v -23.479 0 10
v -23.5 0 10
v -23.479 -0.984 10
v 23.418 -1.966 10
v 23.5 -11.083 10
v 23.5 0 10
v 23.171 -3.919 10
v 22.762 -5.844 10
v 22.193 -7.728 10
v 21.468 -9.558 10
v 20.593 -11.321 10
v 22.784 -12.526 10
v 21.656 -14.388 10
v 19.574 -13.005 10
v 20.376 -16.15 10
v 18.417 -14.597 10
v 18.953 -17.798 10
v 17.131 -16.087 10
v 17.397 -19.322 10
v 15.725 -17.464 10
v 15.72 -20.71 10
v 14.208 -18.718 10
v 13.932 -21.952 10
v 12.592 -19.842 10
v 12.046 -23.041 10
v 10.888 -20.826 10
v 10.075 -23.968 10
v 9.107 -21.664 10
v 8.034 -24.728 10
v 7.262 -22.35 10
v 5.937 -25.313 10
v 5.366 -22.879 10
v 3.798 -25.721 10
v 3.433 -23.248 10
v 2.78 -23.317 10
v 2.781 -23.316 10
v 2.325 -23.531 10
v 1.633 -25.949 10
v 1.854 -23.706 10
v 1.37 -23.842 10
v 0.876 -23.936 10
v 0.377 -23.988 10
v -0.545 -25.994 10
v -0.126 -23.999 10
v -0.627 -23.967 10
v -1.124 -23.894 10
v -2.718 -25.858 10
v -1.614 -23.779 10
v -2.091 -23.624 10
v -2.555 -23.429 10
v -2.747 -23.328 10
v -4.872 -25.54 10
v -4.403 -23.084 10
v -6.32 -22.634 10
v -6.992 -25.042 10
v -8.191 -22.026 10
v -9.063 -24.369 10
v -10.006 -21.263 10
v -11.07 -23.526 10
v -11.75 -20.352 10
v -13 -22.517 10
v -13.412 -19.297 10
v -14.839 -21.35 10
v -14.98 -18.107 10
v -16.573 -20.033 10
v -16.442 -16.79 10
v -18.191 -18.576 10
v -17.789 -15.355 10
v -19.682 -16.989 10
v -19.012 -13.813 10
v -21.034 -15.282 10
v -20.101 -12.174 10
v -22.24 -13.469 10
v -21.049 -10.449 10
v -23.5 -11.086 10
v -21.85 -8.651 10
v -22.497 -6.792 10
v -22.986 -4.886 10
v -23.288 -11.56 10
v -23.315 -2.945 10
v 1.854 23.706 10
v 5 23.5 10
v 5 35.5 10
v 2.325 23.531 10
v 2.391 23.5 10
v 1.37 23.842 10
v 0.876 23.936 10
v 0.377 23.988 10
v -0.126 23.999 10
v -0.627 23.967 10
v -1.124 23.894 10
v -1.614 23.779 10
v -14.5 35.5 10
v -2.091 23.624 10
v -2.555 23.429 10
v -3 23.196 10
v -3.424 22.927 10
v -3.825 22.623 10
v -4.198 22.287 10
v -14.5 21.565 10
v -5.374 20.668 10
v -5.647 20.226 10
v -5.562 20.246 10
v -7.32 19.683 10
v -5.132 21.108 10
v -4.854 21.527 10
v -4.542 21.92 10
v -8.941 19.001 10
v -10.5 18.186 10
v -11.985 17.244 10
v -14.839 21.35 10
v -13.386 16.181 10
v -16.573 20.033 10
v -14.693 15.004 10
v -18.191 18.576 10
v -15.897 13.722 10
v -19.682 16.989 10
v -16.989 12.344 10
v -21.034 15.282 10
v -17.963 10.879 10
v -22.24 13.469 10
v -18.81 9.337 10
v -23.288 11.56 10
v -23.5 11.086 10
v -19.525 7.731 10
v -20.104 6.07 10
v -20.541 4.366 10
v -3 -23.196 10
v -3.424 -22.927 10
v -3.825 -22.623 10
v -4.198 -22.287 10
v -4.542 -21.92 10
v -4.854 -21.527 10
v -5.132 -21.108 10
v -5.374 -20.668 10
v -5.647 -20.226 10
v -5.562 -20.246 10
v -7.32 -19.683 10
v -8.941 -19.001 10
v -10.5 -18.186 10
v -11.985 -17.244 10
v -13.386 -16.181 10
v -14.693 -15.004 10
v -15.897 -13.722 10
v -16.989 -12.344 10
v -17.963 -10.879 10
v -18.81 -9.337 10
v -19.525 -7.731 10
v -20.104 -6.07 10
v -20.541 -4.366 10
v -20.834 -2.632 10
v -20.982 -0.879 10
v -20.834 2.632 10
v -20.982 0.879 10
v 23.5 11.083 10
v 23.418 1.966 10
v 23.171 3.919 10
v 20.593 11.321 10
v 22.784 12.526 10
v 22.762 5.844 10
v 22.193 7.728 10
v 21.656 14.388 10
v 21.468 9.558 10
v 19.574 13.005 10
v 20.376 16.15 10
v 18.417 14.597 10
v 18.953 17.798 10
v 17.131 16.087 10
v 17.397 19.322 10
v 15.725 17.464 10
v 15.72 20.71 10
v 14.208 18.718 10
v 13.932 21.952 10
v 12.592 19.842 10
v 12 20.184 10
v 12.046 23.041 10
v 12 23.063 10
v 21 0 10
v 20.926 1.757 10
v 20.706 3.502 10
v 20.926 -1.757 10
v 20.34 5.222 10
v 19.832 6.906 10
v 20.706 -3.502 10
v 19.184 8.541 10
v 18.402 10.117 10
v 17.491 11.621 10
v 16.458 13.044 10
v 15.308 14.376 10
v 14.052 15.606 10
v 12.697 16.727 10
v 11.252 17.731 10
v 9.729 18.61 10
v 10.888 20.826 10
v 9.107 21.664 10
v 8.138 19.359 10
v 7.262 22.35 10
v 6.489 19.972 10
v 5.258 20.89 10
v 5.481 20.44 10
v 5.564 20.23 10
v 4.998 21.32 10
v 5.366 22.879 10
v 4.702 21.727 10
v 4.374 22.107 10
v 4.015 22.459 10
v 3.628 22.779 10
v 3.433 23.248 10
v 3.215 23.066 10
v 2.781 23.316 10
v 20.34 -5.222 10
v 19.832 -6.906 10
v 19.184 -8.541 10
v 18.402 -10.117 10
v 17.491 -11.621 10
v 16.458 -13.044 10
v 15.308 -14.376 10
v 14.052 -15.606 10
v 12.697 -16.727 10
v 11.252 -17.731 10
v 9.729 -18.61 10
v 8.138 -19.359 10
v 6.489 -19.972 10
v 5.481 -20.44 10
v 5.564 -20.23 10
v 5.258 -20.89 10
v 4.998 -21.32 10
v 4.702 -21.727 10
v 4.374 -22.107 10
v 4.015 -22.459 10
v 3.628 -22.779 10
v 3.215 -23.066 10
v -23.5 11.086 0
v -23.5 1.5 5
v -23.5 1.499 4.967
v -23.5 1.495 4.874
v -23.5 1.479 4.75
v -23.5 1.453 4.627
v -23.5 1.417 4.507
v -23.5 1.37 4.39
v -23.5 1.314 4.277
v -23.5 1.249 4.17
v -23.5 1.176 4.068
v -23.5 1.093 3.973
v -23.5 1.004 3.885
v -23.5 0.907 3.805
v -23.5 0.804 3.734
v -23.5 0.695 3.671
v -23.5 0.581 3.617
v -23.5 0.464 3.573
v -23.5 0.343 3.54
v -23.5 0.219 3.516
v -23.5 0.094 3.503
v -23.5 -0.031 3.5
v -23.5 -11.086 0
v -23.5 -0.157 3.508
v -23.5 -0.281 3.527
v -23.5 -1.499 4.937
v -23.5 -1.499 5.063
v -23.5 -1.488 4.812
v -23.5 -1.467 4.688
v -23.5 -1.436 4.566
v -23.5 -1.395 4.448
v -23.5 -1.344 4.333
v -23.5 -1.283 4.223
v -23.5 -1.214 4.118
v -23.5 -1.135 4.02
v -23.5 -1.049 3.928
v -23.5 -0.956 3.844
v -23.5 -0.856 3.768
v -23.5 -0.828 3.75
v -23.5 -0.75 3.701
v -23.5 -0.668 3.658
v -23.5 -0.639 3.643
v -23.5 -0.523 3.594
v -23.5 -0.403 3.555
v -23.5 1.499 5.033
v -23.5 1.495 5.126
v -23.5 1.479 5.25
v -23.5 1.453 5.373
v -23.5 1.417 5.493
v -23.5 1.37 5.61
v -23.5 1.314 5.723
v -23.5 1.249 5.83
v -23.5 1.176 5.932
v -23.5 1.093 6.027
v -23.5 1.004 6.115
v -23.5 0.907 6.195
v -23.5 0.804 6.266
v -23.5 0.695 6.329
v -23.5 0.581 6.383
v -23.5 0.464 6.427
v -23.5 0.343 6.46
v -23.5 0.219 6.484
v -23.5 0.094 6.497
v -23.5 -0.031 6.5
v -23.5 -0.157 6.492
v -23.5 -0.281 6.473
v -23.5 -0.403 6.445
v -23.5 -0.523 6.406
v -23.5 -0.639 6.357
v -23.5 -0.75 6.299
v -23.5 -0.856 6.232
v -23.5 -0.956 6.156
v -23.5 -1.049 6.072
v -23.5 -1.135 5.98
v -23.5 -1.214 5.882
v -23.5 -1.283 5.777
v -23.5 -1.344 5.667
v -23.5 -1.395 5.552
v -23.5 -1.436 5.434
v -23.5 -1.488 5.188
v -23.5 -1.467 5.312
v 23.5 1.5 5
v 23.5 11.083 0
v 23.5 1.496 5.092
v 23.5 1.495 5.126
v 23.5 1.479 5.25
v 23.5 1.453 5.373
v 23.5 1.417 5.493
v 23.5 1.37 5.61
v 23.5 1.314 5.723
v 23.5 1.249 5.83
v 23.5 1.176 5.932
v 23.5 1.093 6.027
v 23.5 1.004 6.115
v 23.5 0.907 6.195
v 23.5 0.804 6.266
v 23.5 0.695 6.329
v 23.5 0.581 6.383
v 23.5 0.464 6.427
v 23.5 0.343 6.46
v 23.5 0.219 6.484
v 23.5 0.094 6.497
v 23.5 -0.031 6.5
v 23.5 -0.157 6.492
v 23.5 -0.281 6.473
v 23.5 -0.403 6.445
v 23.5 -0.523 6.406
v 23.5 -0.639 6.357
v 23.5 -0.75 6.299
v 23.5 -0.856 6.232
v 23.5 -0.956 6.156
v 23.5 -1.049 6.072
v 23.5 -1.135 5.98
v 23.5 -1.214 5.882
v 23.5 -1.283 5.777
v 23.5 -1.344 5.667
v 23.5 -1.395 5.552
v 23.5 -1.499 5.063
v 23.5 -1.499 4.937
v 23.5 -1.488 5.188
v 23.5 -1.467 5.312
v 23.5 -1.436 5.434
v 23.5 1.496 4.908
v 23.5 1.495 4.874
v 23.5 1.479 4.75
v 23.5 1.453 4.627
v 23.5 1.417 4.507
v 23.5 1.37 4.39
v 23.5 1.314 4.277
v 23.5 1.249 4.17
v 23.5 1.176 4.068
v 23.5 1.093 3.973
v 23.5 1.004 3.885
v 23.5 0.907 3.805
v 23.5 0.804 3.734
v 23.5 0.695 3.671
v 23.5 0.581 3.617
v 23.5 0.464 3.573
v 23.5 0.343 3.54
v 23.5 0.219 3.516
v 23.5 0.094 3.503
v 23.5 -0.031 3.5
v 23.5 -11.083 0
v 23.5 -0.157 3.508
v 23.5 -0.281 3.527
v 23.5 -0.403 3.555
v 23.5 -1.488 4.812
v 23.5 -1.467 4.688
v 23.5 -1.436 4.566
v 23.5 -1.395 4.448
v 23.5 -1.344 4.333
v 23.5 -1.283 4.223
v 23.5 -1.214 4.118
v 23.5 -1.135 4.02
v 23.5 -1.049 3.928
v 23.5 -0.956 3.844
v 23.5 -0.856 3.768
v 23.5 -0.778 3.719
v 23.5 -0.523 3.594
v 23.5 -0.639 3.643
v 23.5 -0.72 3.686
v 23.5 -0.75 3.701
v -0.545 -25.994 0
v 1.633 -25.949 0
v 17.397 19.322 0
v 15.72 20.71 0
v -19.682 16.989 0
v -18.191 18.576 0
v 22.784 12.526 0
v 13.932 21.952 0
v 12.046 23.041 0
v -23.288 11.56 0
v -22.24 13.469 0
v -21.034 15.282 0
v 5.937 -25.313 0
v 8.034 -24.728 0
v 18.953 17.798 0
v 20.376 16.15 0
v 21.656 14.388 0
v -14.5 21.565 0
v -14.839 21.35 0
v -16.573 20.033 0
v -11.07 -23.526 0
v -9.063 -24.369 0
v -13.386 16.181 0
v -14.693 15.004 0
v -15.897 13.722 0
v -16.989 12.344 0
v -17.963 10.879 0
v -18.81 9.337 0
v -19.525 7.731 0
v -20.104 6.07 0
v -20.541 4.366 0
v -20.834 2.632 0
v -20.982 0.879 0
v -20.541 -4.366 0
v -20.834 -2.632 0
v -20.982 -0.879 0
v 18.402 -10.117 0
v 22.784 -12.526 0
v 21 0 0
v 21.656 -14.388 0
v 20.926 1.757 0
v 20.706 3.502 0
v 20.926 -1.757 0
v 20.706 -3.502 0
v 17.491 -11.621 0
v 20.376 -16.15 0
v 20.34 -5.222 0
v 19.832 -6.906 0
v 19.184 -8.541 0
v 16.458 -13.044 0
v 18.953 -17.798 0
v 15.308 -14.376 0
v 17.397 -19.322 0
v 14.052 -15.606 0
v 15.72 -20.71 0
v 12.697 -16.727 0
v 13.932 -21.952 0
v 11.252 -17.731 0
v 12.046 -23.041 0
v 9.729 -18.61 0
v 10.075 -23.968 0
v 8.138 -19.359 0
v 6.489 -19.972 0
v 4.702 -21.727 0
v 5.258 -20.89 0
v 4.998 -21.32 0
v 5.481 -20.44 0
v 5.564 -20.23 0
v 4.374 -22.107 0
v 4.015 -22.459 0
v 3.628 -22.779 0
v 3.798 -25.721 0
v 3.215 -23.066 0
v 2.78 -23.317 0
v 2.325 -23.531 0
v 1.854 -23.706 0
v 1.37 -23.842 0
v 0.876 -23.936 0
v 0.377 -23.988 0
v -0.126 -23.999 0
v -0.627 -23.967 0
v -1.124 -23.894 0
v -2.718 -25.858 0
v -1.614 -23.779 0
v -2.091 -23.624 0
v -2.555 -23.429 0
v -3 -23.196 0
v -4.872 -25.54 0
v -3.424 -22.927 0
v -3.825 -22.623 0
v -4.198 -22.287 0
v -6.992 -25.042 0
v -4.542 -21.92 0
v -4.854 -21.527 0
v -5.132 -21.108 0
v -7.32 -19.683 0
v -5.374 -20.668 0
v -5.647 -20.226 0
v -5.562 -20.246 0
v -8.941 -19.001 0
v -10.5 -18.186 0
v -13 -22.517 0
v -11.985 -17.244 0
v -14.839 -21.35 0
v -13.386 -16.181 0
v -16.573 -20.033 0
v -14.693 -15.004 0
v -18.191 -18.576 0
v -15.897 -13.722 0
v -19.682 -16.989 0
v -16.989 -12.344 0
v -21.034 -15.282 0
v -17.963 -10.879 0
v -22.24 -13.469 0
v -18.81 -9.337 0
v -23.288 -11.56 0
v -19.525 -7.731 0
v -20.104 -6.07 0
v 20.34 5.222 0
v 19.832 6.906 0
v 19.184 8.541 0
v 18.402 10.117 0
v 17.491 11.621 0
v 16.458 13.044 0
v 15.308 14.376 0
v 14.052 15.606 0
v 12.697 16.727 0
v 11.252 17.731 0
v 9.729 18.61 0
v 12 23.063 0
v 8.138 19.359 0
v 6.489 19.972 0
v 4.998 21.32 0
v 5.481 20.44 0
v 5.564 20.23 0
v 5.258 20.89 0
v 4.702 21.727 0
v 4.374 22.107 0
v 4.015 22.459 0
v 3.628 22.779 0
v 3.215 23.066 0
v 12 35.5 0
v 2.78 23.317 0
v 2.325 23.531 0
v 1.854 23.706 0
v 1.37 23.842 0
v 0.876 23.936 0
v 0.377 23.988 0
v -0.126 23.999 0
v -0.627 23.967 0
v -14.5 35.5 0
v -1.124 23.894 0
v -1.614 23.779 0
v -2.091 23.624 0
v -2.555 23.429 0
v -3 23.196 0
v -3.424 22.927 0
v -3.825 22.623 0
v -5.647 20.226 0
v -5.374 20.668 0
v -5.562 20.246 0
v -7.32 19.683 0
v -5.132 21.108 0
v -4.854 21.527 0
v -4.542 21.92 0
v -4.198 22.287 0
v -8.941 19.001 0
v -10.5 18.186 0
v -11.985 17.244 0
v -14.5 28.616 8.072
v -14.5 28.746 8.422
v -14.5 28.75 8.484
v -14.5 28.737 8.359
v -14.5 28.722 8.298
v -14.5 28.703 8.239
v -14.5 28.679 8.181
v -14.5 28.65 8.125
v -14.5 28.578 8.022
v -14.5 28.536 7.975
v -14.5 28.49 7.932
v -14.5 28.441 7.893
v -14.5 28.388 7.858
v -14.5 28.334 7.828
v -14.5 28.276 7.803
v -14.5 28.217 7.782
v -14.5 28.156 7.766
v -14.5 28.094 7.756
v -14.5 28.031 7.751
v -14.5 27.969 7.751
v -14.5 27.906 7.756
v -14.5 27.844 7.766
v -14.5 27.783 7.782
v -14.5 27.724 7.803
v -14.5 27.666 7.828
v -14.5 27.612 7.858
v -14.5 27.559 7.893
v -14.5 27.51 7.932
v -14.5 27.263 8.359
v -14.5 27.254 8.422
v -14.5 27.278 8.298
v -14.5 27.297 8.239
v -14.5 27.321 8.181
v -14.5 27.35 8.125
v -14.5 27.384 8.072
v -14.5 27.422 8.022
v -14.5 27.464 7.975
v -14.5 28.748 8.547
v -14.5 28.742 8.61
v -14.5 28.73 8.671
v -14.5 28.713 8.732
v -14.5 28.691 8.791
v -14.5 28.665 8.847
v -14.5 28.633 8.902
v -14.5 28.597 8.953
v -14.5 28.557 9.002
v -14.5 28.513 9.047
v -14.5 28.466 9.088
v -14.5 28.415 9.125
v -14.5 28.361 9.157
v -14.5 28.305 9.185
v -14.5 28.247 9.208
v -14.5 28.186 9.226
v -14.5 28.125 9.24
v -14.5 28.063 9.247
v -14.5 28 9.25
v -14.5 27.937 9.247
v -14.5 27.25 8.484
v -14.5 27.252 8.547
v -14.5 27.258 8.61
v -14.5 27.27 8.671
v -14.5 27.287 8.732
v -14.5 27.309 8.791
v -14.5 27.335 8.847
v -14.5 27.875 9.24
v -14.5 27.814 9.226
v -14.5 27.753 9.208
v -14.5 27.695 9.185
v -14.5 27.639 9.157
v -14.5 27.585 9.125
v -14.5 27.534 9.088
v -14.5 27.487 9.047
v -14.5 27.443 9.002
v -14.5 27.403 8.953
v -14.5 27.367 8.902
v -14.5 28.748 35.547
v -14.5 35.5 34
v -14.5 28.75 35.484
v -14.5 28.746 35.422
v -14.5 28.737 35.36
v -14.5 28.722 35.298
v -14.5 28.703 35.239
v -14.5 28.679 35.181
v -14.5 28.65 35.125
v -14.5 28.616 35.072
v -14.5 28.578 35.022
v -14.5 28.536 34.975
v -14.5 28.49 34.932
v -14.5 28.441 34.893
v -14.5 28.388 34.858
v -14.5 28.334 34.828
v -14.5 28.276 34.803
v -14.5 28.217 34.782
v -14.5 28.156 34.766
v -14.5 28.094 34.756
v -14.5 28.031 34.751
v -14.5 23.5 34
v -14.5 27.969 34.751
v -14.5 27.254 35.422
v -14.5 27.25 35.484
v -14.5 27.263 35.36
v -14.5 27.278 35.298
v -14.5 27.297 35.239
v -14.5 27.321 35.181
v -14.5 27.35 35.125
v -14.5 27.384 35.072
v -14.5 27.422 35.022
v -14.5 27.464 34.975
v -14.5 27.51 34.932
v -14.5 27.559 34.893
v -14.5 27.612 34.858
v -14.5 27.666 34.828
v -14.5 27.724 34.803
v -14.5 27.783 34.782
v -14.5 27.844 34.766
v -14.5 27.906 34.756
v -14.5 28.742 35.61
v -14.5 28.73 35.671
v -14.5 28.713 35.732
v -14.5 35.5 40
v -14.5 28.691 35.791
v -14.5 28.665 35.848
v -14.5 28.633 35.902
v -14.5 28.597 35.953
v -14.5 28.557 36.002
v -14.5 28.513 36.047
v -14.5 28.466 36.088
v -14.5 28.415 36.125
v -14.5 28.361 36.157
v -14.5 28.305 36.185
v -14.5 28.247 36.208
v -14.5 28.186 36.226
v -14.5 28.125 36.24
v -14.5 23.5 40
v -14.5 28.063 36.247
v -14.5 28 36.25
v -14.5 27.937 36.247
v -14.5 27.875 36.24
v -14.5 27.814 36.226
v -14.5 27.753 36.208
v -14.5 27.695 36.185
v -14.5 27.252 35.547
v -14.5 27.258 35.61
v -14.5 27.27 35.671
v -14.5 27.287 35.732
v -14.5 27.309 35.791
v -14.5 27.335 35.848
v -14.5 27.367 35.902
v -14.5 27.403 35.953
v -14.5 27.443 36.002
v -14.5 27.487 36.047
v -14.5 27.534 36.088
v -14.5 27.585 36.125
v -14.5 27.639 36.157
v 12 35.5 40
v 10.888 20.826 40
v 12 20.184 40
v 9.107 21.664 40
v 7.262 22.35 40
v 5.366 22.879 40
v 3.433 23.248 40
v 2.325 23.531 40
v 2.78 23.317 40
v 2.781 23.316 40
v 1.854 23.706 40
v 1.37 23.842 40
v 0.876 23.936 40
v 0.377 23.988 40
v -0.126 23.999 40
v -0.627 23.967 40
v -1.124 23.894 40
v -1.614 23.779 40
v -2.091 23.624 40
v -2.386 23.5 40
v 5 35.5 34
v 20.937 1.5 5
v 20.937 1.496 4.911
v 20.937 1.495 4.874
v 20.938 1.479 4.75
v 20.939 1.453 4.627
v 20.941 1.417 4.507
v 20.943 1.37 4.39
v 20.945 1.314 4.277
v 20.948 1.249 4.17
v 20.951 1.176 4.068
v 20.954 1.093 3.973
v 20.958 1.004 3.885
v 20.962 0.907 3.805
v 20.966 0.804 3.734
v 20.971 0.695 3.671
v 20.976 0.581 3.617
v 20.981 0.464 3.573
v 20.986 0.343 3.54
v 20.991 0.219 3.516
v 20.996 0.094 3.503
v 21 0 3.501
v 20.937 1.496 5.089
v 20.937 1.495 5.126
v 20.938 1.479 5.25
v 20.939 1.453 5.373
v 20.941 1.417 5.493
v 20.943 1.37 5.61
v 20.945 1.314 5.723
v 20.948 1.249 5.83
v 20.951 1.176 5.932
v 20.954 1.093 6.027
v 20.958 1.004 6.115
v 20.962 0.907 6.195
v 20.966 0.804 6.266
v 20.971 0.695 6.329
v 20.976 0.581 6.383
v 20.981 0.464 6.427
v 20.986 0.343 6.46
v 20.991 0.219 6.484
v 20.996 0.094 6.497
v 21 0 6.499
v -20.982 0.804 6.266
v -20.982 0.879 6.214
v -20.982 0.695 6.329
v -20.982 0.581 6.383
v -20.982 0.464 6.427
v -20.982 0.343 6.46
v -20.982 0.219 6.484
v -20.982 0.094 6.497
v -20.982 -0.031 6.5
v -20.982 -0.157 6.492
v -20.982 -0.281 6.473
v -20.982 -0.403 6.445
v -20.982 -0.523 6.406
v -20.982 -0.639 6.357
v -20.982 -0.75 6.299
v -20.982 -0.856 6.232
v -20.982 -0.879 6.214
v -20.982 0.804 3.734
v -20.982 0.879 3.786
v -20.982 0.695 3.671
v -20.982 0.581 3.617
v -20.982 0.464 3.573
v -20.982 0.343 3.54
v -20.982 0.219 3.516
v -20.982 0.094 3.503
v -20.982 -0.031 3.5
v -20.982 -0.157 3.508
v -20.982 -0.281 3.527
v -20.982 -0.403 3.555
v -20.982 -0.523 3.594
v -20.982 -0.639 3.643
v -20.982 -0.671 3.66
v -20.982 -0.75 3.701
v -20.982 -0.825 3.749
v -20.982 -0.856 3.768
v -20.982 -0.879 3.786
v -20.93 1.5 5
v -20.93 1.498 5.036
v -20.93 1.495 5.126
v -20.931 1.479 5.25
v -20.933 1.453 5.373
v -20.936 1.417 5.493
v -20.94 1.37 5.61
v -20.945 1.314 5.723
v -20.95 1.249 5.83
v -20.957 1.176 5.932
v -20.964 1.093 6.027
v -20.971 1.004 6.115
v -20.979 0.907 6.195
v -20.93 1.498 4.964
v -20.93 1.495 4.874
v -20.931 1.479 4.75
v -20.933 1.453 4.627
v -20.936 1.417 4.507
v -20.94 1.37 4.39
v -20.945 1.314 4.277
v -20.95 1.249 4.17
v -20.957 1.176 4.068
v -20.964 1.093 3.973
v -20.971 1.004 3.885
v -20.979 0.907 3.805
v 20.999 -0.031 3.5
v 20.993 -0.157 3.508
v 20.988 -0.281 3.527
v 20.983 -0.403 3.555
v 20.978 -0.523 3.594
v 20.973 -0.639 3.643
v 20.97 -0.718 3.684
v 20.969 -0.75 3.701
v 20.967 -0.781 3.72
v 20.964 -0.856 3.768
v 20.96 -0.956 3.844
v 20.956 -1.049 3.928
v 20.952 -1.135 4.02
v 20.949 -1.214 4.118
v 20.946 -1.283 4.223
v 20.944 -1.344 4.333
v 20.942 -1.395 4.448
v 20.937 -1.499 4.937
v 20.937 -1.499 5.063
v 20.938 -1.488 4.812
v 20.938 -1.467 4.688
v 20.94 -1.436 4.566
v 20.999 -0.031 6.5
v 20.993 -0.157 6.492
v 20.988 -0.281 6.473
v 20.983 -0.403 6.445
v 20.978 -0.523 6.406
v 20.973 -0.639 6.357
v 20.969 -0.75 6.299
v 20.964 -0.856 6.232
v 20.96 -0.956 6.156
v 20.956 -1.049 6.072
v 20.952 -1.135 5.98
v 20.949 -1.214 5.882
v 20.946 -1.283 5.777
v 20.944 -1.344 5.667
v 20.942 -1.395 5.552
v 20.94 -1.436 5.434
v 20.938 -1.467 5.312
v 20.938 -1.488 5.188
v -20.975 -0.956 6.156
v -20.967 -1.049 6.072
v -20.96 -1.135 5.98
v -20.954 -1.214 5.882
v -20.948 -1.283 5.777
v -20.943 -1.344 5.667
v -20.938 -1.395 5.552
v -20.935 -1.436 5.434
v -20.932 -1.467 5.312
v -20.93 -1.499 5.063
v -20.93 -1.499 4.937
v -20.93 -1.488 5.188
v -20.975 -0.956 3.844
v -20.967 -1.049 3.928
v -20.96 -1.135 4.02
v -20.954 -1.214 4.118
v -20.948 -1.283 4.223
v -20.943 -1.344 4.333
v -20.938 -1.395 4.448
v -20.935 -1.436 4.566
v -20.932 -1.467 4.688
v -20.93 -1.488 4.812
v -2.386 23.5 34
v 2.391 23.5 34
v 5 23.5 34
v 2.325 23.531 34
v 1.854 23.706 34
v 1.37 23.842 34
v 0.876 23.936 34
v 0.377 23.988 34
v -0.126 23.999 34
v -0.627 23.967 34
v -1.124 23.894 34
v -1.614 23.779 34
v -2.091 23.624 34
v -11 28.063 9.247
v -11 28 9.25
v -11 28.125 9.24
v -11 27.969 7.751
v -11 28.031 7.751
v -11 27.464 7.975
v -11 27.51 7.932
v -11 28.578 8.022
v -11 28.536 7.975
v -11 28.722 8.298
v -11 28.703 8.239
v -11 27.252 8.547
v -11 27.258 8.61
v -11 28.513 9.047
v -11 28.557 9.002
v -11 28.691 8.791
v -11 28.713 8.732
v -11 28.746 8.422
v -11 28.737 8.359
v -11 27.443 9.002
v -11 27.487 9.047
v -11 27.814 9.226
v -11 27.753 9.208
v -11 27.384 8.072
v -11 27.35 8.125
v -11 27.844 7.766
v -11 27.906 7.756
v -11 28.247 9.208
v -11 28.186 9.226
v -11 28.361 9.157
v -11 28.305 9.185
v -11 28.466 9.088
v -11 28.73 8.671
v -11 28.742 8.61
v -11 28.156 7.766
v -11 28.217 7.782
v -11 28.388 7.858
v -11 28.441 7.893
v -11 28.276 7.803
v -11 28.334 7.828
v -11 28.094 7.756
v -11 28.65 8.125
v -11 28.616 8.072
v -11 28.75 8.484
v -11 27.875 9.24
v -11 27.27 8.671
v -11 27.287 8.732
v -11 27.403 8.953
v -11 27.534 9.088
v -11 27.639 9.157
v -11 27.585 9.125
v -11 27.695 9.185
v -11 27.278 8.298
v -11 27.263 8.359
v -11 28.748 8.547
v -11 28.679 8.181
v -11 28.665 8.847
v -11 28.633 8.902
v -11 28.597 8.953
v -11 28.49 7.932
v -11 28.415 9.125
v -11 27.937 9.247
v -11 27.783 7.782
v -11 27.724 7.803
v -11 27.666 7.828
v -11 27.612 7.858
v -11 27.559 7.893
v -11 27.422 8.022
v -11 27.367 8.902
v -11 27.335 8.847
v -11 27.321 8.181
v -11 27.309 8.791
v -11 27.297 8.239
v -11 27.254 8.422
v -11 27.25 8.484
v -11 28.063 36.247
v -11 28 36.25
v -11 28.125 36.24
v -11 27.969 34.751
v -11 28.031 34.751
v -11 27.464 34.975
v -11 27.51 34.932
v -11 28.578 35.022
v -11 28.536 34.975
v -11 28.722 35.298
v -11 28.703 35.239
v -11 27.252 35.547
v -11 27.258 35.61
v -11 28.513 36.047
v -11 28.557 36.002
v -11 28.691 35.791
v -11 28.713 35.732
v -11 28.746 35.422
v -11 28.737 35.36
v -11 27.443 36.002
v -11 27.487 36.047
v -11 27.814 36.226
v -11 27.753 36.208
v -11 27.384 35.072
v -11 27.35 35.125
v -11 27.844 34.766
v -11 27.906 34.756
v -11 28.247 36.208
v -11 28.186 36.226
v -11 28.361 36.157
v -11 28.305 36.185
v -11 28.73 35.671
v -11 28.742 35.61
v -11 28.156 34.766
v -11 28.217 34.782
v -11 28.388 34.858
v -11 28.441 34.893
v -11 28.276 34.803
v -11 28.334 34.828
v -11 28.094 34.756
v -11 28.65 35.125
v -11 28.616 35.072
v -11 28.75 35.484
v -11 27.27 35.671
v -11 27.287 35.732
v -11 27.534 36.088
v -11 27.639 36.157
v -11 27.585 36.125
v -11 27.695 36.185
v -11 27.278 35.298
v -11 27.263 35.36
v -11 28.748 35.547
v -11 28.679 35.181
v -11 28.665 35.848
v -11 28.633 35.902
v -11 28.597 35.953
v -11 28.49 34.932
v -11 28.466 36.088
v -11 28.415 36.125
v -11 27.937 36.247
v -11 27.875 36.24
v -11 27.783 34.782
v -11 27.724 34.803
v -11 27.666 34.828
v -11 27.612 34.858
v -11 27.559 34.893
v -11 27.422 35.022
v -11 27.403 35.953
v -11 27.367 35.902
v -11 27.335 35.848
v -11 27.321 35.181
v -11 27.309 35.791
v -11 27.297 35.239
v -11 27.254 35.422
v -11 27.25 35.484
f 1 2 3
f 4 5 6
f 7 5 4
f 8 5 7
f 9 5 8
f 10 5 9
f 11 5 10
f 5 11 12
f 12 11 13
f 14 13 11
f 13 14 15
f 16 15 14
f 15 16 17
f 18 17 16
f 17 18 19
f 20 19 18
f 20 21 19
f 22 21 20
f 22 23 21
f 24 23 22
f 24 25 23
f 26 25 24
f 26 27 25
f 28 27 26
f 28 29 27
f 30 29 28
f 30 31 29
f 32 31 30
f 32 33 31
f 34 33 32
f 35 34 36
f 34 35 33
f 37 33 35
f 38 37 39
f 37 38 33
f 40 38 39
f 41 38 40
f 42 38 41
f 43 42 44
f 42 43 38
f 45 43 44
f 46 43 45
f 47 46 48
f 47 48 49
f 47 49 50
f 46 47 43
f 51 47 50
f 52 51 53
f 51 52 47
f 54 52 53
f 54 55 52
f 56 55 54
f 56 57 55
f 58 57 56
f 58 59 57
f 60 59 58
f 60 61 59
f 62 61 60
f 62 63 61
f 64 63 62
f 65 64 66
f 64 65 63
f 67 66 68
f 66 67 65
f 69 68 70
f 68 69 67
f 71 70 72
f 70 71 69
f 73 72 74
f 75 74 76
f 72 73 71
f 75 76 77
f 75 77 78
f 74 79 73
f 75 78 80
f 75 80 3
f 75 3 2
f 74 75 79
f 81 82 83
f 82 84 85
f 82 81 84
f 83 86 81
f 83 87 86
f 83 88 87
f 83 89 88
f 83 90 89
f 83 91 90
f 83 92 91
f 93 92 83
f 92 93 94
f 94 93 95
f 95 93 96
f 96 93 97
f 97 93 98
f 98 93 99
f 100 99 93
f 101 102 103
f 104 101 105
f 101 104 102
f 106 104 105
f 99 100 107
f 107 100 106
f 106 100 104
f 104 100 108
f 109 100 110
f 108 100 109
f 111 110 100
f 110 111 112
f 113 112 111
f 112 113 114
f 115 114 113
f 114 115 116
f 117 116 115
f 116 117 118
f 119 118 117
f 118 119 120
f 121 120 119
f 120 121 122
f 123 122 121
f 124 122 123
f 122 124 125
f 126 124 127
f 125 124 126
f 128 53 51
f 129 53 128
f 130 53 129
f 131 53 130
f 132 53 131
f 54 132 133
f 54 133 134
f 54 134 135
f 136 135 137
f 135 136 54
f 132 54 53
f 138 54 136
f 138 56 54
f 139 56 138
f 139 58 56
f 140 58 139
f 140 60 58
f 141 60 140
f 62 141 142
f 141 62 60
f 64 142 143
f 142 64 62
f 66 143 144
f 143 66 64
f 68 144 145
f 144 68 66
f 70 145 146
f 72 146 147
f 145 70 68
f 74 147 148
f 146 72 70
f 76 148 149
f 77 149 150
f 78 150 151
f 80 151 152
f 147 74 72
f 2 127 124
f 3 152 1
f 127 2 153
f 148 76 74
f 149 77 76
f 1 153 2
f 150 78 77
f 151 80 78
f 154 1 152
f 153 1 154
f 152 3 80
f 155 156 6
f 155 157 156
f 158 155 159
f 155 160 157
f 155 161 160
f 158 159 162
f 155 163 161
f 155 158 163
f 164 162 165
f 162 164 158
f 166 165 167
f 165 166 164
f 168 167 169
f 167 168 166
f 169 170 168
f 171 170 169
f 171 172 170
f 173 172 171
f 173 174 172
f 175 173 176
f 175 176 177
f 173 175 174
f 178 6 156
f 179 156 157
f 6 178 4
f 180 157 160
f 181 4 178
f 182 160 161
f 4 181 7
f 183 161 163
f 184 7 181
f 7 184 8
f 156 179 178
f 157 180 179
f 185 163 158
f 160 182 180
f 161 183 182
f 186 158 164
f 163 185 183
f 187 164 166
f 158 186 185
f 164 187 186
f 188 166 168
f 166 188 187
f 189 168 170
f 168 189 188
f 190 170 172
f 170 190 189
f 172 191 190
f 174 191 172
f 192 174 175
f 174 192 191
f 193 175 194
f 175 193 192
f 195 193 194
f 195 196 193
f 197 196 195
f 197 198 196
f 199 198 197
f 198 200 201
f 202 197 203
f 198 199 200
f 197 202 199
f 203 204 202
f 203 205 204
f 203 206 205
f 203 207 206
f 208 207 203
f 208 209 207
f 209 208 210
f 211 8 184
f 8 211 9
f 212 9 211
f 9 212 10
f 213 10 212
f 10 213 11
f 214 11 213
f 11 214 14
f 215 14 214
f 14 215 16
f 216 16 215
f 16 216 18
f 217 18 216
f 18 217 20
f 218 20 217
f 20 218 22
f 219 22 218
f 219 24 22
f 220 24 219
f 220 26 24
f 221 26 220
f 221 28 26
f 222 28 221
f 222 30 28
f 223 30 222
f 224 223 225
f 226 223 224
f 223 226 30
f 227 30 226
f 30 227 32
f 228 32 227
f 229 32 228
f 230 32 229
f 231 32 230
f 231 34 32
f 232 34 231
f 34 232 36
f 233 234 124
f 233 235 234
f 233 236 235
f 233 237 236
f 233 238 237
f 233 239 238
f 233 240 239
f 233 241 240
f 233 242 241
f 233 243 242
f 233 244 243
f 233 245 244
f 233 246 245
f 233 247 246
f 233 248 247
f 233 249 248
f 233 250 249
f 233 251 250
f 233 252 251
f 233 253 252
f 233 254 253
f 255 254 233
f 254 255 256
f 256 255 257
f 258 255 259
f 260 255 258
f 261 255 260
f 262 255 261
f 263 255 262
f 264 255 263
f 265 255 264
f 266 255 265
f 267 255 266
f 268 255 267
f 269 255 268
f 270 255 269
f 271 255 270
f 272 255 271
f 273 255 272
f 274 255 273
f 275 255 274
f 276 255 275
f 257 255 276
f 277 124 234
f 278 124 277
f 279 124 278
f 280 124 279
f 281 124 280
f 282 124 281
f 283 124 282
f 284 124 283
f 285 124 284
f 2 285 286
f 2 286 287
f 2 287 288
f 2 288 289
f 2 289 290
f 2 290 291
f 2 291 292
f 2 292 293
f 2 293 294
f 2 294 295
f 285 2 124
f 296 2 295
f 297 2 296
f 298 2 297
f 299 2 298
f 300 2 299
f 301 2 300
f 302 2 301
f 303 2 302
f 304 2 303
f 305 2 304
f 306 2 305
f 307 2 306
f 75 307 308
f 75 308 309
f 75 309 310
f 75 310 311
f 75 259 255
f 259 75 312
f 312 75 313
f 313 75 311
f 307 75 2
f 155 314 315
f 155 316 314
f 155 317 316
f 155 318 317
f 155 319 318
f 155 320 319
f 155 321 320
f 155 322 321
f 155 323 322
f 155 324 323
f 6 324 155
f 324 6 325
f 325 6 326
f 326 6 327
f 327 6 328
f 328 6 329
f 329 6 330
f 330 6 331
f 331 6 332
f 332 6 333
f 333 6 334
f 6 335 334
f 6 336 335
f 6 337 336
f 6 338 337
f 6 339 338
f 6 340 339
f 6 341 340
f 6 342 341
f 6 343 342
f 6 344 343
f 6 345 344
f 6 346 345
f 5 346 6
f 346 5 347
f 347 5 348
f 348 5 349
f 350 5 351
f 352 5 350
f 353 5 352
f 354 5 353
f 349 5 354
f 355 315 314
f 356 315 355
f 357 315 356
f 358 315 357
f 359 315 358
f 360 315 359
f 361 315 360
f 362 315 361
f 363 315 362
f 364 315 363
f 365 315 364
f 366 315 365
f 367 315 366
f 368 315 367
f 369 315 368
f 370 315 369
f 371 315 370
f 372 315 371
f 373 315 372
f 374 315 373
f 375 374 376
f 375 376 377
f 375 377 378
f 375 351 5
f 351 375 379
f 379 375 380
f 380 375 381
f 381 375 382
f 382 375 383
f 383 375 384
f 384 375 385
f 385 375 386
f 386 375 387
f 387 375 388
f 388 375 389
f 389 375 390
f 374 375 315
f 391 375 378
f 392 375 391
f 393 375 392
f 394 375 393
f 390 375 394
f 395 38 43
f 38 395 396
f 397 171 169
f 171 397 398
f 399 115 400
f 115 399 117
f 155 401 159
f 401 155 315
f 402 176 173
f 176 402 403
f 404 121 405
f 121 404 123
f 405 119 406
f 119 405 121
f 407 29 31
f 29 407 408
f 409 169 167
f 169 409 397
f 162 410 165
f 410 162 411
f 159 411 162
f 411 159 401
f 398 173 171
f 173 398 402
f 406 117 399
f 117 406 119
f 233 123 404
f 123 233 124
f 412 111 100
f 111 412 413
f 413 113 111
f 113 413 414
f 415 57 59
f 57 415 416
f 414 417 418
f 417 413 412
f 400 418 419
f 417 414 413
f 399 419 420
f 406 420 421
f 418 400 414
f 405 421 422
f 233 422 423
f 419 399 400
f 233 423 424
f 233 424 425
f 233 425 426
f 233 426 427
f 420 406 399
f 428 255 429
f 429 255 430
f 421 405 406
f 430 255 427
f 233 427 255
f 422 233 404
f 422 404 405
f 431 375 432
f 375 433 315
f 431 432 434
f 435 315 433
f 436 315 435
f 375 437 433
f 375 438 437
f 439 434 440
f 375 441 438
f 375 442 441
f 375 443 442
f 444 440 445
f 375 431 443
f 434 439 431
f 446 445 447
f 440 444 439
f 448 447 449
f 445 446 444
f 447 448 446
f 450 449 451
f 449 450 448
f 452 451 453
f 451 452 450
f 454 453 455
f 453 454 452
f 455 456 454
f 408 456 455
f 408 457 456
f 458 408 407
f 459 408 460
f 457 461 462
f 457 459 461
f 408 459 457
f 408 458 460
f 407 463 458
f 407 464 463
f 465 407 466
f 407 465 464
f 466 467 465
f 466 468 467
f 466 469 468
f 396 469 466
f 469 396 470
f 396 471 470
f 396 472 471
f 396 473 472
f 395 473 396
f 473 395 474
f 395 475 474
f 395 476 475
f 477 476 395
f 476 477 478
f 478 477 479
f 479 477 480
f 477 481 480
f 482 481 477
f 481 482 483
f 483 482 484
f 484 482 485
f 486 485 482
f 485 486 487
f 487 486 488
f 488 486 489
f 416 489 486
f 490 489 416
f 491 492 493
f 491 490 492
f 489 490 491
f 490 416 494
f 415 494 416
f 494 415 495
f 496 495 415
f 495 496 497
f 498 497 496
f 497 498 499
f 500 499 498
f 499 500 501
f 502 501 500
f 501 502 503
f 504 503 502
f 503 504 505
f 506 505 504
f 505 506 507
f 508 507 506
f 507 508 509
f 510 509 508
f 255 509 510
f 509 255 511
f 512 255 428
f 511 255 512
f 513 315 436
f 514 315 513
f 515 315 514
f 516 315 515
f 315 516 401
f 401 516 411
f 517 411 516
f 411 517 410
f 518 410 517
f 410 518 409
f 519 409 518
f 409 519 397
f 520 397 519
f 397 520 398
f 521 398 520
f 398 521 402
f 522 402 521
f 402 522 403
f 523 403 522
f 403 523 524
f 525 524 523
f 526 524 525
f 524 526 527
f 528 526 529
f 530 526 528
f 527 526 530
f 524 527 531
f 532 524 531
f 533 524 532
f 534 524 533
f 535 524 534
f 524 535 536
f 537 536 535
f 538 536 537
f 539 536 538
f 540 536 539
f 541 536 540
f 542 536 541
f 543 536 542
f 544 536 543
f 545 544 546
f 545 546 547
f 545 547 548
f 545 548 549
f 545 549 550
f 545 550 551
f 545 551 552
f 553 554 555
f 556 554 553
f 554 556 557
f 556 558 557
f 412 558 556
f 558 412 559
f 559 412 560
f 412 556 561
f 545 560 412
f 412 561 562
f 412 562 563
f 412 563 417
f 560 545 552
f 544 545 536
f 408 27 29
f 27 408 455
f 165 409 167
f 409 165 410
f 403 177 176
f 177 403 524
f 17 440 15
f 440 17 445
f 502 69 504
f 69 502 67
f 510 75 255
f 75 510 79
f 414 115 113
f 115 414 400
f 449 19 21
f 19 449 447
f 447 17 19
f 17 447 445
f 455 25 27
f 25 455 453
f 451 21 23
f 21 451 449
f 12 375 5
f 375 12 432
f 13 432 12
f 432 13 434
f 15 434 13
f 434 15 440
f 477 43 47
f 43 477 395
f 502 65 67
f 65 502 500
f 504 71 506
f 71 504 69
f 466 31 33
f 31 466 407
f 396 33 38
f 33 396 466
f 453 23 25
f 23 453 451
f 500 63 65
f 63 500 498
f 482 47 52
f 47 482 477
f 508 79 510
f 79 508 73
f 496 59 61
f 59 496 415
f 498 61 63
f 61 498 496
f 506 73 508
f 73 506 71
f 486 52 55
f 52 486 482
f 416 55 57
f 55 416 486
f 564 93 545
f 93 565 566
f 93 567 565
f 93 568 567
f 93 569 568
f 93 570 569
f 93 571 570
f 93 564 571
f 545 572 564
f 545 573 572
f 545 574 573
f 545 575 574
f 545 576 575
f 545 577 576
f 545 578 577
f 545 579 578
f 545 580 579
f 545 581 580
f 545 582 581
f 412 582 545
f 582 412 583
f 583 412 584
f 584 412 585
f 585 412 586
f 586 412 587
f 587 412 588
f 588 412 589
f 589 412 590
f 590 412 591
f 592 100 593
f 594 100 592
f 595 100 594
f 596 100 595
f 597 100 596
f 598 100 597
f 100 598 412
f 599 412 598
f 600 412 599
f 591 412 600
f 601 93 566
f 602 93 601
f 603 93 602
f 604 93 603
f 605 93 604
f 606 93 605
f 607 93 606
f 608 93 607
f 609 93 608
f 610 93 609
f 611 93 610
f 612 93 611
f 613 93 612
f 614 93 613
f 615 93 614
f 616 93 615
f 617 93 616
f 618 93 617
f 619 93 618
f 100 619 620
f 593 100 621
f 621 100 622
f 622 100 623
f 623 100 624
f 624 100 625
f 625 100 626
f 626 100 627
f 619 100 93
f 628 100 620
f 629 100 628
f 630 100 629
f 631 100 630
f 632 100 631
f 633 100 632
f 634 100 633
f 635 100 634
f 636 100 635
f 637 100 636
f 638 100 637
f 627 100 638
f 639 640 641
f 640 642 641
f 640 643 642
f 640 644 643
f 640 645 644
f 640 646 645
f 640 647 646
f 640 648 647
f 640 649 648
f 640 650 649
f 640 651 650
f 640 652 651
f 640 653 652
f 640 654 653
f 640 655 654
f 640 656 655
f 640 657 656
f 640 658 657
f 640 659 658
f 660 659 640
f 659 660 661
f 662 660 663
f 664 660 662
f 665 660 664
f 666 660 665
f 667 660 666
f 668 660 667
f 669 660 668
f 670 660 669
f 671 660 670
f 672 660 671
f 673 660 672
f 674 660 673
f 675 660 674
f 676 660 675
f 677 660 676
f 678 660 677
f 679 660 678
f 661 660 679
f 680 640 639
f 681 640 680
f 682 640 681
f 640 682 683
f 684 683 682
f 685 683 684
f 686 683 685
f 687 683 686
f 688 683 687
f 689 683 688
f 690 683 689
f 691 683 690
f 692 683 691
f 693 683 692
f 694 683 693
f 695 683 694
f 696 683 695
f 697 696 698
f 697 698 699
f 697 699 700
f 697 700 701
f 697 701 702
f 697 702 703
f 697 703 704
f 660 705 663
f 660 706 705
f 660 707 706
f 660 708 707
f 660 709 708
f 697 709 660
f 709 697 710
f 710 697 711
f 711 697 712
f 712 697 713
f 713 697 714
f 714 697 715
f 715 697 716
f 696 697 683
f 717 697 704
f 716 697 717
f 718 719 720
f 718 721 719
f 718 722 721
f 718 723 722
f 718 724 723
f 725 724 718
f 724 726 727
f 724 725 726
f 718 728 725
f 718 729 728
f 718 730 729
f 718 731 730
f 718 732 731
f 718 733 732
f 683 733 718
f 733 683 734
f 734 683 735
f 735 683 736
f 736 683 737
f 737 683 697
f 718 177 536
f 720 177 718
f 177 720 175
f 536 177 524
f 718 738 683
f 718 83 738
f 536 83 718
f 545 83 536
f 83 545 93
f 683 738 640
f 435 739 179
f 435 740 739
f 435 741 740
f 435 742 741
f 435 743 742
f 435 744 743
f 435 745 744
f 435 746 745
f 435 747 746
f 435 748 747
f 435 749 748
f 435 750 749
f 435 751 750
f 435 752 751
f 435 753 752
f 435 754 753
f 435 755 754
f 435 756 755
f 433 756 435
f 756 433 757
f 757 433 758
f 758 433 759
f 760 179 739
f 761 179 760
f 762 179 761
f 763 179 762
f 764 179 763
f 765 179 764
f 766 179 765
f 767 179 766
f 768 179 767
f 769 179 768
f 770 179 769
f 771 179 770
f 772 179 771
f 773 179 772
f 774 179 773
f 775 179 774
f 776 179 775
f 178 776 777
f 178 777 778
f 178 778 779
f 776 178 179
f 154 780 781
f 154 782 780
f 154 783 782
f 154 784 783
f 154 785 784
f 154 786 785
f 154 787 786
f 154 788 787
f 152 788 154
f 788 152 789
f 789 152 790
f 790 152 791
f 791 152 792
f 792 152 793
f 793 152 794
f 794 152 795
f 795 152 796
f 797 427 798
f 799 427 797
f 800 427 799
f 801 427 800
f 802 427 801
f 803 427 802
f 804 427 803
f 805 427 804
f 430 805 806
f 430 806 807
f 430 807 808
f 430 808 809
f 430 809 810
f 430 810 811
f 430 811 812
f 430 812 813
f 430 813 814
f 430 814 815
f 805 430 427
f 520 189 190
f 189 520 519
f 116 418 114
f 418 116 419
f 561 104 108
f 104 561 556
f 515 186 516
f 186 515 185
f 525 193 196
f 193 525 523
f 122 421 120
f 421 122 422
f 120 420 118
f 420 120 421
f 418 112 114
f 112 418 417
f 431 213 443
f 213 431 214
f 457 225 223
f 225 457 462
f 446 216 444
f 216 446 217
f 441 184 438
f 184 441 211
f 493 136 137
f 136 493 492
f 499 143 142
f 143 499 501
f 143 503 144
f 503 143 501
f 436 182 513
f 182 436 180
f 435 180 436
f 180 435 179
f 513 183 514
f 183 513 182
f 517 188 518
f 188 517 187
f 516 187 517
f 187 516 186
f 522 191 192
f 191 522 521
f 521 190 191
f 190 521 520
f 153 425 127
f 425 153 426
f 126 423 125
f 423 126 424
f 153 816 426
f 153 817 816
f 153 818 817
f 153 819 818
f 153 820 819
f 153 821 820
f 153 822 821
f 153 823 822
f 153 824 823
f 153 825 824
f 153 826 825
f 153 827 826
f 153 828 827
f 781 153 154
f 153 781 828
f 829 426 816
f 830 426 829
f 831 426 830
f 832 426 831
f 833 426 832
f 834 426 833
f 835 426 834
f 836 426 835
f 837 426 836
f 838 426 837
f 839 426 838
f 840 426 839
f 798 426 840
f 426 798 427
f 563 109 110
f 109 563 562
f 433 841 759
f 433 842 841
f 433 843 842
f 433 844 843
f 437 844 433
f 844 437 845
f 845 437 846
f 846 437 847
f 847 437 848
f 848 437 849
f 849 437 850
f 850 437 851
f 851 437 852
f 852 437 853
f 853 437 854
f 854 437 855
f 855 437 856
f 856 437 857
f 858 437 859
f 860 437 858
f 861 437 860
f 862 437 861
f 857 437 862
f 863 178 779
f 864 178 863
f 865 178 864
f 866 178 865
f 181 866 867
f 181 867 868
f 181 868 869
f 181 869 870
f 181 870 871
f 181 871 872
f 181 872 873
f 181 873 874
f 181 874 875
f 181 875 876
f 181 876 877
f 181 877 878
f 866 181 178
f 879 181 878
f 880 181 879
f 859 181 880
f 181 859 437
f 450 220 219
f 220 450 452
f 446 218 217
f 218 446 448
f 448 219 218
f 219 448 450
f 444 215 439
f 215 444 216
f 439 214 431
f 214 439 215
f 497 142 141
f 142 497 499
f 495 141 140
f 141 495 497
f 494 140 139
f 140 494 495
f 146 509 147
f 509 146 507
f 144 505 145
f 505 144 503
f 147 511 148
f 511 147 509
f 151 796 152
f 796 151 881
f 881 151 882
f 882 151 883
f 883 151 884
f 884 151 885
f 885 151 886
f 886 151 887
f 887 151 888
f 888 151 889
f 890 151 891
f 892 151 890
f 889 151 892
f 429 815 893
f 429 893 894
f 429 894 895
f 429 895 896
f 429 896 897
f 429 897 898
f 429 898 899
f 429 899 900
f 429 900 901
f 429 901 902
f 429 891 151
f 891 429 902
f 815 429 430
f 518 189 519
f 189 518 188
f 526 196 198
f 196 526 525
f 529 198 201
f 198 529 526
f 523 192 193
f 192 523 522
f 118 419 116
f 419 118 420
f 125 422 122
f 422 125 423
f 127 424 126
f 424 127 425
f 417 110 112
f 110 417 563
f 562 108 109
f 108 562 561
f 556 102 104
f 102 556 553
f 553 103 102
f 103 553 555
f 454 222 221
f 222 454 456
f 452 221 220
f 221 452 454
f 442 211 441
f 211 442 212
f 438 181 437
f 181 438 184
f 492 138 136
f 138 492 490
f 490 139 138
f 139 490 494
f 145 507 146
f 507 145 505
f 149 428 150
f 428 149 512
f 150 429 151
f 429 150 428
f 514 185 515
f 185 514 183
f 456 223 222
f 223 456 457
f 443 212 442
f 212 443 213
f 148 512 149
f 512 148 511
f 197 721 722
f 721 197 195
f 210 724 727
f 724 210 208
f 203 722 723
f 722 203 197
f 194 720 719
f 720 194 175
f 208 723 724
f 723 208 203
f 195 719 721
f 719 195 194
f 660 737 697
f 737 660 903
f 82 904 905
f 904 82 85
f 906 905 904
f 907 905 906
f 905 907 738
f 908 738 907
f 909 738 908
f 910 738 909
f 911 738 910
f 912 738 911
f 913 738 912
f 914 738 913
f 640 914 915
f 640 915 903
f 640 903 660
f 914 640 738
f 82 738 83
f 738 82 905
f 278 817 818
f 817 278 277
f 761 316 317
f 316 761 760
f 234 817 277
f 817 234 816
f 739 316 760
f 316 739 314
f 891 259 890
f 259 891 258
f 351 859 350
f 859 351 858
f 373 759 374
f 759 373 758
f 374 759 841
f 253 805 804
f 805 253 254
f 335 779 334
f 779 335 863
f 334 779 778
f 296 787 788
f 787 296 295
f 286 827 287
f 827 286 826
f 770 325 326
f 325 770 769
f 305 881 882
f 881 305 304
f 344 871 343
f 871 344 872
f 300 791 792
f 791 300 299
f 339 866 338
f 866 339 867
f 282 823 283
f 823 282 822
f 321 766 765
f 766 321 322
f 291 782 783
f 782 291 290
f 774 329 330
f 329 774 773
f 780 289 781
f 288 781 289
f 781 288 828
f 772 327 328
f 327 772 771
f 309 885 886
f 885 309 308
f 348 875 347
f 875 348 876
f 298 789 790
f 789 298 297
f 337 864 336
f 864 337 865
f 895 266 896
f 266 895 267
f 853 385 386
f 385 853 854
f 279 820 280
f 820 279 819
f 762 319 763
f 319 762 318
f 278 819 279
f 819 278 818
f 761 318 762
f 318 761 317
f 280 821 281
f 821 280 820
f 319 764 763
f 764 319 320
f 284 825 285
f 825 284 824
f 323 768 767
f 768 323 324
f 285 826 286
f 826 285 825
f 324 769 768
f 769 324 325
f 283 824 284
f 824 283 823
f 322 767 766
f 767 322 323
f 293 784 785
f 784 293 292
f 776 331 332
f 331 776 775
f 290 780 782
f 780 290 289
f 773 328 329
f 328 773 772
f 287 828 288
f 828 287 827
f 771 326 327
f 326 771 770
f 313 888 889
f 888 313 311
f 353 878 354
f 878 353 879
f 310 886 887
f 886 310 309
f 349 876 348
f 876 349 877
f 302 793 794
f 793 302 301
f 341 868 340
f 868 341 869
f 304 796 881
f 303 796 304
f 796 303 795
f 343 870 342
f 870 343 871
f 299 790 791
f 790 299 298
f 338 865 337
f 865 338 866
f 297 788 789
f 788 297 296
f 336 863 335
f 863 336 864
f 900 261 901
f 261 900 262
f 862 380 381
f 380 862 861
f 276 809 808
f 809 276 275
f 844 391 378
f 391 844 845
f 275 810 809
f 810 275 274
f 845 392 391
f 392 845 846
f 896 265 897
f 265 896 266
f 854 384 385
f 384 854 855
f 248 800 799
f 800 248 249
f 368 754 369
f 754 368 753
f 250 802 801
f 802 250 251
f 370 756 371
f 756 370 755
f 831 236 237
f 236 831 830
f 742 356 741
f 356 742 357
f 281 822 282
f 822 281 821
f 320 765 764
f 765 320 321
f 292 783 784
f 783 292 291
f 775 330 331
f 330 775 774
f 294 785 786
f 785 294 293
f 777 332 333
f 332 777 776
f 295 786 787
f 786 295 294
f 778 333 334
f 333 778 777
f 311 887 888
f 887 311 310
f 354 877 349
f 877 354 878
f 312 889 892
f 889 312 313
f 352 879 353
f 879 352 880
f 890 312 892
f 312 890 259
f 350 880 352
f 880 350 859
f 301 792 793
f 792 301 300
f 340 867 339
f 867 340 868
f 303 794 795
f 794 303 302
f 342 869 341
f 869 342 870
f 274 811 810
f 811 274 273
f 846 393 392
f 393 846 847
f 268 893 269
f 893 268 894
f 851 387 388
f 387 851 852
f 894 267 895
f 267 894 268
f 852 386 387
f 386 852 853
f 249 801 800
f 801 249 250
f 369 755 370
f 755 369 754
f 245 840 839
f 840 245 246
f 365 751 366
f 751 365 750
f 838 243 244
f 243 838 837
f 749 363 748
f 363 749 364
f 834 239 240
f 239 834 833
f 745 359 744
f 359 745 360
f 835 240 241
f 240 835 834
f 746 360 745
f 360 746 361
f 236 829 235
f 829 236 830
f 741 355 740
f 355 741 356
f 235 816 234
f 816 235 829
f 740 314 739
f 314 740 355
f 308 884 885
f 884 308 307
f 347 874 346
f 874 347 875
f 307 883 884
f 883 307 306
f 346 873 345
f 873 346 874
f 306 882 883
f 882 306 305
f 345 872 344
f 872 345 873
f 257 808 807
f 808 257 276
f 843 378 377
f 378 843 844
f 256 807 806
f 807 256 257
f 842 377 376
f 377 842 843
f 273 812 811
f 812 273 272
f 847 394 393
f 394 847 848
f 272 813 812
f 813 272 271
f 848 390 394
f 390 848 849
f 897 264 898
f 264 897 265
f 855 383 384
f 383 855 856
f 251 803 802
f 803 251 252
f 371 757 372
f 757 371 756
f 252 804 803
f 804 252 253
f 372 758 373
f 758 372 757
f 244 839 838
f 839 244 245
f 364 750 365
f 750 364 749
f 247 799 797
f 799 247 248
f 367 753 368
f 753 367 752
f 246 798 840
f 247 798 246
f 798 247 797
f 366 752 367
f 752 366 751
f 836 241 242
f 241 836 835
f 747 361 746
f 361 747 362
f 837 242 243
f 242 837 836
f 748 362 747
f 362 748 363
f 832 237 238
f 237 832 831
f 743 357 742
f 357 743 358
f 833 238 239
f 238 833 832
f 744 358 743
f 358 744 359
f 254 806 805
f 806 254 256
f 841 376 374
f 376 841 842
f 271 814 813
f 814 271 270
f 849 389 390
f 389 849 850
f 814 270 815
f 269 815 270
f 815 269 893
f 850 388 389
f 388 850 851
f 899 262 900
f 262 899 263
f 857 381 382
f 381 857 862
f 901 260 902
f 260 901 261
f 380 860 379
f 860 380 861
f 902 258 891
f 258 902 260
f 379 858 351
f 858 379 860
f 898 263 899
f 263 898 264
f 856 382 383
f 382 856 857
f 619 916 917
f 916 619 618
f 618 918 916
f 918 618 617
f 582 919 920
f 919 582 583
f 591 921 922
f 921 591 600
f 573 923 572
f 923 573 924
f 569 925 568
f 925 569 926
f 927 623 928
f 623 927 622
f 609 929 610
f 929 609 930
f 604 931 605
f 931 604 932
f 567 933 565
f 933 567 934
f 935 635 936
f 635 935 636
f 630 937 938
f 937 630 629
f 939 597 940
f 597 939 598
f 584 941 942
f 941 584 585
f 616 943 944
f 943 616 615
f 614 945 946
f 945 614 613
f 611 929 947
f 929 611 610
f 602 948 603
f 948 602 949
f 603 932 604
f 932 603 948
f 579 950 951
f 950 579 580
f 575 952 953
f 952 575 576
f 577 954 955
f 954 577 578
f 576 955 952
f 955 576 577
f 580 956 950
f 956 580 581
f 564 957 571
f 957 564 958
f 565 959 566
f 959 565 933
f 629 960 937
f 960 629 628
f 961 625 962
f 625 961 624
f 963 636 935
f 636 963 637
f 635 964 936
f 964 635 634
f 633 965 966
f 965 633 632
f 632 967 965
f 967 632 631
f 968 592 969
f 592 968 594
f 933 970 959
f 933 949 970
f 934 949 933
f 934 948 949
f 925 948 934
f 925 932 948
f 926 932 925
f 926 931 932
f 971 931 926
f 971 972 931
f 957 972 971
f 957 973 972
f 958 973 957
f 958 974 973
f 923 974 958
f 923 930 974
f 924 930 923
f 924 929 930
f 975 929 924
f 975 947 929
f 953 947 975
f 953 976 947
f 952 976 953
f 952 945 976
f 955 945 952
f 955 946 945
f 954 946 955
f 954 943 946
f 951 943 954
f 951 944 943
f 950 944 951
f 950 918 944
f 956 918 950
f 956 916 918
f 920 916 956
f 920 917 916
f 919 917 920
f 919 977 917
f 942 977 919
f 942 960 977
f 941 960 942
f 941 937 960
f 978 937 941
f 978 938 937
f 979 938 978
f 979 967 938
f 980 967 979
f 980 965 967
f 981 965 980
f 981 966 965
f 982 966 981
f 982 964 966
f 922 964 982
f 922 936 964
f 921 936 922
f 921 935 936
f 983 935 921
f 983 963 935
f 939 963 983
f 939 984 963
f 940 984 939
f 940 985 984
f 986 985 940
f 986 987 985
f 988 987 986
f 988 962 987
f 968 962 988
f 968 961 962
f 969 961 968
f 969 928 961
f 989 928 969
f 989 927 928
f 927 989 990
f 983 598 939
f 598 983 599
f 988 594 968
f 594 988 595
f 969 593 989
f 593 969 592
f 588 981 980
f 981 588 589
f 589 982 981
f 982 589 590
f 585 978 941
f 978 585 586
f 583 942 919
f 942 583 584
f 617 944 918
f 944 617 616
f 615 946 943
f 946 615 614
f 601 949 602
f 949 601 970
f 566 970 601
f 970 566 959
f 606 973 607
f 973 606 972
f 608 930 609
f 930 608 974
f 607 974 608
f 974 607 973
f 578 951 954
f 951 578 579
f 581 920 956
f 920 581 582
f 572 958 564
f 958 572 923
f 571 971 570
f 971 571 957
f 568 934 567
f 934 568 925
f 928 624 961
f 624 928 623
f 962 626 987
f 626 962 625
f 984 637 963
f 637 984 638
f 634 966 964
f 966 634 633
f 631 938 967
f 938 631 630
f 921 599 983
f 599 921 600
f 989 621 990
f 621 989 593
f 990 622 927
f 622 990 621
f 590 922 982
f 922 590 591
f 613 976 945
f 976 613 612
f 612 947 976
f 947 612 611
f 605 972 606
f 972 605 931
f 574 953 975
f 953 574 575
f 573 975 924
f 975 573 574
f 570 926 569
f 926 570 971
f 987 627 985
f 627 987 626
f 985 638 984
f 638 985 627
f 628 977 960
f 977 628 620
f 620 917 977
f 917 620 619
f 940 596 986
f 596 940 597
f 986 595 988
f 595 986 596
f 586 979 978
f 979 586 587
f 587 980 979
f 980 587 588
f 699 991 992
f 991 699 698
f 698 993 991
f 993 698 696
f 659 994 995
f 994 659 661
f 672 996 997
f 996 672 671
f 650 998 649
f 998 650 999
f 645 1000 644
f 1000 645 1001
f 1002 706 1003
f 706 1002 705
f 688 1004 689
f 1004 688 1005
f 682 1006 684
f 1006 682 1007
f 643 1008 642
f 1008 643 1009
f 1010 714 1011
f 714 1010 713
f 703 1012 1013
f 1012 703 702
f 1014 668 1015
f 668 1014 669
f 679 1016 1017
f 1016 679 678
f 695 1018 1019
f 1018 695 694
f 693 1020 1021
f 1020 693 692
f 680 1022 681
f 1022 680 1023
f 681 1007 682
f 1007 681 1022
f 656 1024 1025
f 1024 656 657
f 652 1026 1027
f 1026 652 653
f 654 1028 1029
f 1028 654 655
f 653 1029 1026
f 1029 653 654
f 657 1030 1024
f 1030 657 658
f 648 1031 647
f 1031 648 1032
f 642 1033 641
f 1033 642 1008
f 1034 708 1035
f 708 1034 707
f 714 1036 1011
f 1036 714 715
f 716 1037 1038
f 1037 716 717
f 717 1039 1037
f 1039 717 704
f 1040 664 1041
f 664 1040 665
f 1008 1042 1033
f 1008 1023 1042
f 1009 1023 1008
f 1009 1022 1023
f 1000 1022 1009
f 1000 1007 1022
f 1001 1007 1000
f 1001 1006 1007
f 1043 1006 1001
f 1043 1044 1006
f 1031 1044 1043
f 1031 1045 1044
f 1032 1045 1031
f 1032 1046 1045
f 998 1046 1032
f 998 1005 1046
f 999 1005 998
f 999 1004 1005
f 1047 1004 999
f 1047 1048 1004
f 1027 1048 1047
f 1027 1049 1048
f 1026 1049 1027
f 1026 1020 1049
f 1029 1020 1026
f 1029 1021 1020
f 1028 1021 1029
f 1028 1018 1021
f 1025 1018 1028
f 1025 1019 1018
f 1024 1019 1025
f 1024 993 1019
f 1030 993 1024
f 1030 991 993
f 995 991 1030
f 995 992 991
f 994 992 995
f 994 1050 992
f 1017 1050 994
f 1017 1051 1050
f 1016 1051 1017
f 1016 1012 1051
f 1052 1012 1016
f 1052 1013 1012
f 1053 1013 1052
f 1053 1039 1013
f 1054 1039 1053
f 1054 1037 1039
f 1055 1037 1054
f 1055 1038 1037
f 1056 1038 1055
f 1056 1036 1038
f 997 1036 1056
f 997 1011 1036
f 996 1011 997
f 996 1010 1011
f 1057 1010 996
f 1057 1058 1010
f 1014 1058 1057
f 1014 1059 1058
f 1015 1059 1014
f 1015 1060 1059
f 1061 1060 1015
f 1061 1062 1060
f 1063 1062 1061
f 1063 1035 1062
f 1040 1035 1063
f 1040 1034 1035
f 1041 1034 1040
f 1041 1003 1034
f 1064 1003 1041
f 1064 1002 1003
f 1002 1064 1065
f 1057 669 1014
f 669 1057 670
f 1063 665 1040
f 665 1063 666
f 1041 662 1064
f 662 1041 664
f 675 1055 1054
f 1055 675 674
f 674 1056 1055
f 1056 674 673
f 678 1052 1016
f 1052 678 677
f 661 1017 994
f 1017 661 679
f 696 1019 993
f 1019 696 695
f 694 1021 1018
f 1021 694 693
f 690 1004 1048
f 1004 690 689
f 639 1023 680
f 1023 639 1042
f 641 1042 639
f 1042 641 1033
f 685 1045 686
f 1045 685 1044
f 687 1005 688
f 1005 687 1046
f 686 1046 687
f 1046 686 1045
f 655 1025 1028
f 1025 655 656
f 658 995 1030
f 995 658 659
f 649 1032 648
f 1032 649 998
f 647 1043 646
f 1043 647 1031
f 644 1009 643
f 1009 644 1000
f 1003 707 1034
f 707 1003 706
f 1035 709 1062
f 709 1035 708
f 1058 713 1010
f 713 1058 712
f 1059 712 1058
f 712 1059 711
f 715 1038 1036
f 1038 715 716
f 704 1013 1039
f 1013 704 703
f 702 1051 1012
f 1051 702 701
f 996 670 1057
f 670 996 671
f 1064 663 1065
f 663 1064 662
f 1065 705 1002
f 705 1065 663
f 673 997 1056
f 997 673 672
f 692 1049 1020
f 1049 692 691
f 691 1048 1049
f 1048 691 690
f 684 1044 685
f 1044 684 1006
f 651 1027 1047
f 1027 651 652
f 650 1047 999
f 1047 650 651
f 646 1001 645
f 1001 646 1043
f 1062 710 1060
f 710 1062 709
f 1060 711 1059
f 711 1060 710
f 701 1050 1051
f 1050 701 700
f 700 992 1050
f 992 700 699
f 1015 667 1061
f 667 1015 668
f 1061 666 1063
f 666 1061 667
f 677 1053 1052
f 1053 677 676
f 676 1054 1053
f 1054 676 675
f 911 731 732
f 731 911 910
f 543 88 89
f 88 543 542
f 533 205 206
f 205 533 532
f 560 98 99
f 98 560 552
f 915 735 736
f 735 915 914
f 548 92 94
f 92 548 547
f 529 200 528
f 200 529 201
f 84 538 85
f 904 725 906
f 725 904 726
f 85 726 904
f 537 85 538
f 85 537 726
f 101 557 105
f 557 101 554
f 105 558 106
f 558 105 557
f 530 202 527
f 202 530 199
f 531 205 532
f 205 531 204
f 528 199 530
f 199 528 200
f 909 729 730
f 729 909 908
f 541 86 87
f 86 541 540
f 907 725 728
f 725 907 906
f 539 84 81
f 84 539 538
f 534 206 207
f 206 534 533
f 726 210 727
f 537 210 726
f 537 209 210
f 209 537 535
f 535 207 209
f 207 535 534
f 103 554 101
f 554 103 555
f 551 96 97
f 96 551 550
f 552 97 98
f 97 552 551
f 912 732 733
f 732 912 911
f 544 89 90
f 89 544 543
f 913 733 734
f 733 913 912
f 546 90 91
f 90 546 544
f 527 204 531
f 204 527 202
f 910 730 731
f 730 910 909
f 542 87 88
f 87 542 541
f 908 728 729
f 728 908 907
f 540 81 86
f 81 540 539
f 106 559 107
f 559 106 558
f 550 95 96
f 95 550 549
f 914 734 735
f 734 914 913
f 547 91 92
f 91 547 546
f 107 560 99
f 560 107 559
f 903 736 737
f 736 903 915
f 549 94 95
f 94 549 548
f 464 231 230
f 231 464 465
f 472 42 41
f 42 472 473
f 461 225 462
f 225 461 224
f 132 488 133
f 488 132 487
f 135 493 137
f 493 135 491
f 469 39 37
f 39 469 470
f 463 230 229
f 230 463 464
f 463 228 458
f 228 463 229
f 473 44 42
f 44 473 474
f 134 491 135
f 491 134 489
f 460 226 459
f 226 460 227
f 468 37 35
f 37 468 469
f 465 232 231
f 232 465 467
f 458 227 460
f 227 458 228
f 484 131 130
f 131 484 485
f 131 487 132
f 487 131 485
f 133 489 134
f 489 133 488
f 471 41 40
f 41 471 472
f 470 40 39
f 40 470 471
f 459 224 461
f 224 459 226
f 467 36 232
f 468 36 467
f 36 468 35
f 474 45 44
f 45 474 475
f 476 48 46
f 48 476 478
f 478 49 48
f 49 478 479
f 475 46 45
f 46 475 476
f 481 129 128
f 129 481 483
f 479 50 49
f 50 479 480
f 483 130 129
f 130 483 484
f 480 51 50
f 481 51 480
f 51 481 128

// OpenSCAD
$fn=75;
innerDiam = 42;
outterDiam=47;
outterDiam1=52;
difference () {
    union () {cylinder(r=outterDiam1/2, h=10); 
        translate([-outterDiam/2+9,0,0]) cube([outterDiam/2+3, outterDiam/2 +12, 40]);
    }
    cylinder(r=innerDiam/2, h=100, center = true); 
    translate([0,0,10])cylinder(r=outterDiam/2, h=100); 
    translate([-outterDiam/2,0,10])cube([outterDiam/2, outterDiam/2 , 44]);
    #translate([-((innerDiam/2)-6),outterDiam/2,10])cube([20,12,24]);
    
    //holes
    #translate ([-50, 0, 5]) rotate([90,0,90])cylinder(r=3/2, h= 100);
   
    //servo holes
    # translate([-11,28,8.5])rotate([0,-90,0])cylinder(r=1.5/2, h = 4);
    #translate([-11,28,35.5])rotate([0,-90,0])cylinder(r=1.5/2, h = 4);
    #difference() {
        
        cube([outterDiam1,outterDiam1,20], center=true);
    cube([outterDiam,outterDiam1,20], center=true);
    }
    #translate([0,18,0]) cylinder (r= 6, h =80, center = true);
    
    #translate([0,-18,0]) cylinder (r= 6, h =80, center = true);
    
    //outer gim
   /* #difference() {
        cylinder(r=82/2, h =10);
        cylinder(r=outterDiam1/2 , h=10);
        }*/
}
